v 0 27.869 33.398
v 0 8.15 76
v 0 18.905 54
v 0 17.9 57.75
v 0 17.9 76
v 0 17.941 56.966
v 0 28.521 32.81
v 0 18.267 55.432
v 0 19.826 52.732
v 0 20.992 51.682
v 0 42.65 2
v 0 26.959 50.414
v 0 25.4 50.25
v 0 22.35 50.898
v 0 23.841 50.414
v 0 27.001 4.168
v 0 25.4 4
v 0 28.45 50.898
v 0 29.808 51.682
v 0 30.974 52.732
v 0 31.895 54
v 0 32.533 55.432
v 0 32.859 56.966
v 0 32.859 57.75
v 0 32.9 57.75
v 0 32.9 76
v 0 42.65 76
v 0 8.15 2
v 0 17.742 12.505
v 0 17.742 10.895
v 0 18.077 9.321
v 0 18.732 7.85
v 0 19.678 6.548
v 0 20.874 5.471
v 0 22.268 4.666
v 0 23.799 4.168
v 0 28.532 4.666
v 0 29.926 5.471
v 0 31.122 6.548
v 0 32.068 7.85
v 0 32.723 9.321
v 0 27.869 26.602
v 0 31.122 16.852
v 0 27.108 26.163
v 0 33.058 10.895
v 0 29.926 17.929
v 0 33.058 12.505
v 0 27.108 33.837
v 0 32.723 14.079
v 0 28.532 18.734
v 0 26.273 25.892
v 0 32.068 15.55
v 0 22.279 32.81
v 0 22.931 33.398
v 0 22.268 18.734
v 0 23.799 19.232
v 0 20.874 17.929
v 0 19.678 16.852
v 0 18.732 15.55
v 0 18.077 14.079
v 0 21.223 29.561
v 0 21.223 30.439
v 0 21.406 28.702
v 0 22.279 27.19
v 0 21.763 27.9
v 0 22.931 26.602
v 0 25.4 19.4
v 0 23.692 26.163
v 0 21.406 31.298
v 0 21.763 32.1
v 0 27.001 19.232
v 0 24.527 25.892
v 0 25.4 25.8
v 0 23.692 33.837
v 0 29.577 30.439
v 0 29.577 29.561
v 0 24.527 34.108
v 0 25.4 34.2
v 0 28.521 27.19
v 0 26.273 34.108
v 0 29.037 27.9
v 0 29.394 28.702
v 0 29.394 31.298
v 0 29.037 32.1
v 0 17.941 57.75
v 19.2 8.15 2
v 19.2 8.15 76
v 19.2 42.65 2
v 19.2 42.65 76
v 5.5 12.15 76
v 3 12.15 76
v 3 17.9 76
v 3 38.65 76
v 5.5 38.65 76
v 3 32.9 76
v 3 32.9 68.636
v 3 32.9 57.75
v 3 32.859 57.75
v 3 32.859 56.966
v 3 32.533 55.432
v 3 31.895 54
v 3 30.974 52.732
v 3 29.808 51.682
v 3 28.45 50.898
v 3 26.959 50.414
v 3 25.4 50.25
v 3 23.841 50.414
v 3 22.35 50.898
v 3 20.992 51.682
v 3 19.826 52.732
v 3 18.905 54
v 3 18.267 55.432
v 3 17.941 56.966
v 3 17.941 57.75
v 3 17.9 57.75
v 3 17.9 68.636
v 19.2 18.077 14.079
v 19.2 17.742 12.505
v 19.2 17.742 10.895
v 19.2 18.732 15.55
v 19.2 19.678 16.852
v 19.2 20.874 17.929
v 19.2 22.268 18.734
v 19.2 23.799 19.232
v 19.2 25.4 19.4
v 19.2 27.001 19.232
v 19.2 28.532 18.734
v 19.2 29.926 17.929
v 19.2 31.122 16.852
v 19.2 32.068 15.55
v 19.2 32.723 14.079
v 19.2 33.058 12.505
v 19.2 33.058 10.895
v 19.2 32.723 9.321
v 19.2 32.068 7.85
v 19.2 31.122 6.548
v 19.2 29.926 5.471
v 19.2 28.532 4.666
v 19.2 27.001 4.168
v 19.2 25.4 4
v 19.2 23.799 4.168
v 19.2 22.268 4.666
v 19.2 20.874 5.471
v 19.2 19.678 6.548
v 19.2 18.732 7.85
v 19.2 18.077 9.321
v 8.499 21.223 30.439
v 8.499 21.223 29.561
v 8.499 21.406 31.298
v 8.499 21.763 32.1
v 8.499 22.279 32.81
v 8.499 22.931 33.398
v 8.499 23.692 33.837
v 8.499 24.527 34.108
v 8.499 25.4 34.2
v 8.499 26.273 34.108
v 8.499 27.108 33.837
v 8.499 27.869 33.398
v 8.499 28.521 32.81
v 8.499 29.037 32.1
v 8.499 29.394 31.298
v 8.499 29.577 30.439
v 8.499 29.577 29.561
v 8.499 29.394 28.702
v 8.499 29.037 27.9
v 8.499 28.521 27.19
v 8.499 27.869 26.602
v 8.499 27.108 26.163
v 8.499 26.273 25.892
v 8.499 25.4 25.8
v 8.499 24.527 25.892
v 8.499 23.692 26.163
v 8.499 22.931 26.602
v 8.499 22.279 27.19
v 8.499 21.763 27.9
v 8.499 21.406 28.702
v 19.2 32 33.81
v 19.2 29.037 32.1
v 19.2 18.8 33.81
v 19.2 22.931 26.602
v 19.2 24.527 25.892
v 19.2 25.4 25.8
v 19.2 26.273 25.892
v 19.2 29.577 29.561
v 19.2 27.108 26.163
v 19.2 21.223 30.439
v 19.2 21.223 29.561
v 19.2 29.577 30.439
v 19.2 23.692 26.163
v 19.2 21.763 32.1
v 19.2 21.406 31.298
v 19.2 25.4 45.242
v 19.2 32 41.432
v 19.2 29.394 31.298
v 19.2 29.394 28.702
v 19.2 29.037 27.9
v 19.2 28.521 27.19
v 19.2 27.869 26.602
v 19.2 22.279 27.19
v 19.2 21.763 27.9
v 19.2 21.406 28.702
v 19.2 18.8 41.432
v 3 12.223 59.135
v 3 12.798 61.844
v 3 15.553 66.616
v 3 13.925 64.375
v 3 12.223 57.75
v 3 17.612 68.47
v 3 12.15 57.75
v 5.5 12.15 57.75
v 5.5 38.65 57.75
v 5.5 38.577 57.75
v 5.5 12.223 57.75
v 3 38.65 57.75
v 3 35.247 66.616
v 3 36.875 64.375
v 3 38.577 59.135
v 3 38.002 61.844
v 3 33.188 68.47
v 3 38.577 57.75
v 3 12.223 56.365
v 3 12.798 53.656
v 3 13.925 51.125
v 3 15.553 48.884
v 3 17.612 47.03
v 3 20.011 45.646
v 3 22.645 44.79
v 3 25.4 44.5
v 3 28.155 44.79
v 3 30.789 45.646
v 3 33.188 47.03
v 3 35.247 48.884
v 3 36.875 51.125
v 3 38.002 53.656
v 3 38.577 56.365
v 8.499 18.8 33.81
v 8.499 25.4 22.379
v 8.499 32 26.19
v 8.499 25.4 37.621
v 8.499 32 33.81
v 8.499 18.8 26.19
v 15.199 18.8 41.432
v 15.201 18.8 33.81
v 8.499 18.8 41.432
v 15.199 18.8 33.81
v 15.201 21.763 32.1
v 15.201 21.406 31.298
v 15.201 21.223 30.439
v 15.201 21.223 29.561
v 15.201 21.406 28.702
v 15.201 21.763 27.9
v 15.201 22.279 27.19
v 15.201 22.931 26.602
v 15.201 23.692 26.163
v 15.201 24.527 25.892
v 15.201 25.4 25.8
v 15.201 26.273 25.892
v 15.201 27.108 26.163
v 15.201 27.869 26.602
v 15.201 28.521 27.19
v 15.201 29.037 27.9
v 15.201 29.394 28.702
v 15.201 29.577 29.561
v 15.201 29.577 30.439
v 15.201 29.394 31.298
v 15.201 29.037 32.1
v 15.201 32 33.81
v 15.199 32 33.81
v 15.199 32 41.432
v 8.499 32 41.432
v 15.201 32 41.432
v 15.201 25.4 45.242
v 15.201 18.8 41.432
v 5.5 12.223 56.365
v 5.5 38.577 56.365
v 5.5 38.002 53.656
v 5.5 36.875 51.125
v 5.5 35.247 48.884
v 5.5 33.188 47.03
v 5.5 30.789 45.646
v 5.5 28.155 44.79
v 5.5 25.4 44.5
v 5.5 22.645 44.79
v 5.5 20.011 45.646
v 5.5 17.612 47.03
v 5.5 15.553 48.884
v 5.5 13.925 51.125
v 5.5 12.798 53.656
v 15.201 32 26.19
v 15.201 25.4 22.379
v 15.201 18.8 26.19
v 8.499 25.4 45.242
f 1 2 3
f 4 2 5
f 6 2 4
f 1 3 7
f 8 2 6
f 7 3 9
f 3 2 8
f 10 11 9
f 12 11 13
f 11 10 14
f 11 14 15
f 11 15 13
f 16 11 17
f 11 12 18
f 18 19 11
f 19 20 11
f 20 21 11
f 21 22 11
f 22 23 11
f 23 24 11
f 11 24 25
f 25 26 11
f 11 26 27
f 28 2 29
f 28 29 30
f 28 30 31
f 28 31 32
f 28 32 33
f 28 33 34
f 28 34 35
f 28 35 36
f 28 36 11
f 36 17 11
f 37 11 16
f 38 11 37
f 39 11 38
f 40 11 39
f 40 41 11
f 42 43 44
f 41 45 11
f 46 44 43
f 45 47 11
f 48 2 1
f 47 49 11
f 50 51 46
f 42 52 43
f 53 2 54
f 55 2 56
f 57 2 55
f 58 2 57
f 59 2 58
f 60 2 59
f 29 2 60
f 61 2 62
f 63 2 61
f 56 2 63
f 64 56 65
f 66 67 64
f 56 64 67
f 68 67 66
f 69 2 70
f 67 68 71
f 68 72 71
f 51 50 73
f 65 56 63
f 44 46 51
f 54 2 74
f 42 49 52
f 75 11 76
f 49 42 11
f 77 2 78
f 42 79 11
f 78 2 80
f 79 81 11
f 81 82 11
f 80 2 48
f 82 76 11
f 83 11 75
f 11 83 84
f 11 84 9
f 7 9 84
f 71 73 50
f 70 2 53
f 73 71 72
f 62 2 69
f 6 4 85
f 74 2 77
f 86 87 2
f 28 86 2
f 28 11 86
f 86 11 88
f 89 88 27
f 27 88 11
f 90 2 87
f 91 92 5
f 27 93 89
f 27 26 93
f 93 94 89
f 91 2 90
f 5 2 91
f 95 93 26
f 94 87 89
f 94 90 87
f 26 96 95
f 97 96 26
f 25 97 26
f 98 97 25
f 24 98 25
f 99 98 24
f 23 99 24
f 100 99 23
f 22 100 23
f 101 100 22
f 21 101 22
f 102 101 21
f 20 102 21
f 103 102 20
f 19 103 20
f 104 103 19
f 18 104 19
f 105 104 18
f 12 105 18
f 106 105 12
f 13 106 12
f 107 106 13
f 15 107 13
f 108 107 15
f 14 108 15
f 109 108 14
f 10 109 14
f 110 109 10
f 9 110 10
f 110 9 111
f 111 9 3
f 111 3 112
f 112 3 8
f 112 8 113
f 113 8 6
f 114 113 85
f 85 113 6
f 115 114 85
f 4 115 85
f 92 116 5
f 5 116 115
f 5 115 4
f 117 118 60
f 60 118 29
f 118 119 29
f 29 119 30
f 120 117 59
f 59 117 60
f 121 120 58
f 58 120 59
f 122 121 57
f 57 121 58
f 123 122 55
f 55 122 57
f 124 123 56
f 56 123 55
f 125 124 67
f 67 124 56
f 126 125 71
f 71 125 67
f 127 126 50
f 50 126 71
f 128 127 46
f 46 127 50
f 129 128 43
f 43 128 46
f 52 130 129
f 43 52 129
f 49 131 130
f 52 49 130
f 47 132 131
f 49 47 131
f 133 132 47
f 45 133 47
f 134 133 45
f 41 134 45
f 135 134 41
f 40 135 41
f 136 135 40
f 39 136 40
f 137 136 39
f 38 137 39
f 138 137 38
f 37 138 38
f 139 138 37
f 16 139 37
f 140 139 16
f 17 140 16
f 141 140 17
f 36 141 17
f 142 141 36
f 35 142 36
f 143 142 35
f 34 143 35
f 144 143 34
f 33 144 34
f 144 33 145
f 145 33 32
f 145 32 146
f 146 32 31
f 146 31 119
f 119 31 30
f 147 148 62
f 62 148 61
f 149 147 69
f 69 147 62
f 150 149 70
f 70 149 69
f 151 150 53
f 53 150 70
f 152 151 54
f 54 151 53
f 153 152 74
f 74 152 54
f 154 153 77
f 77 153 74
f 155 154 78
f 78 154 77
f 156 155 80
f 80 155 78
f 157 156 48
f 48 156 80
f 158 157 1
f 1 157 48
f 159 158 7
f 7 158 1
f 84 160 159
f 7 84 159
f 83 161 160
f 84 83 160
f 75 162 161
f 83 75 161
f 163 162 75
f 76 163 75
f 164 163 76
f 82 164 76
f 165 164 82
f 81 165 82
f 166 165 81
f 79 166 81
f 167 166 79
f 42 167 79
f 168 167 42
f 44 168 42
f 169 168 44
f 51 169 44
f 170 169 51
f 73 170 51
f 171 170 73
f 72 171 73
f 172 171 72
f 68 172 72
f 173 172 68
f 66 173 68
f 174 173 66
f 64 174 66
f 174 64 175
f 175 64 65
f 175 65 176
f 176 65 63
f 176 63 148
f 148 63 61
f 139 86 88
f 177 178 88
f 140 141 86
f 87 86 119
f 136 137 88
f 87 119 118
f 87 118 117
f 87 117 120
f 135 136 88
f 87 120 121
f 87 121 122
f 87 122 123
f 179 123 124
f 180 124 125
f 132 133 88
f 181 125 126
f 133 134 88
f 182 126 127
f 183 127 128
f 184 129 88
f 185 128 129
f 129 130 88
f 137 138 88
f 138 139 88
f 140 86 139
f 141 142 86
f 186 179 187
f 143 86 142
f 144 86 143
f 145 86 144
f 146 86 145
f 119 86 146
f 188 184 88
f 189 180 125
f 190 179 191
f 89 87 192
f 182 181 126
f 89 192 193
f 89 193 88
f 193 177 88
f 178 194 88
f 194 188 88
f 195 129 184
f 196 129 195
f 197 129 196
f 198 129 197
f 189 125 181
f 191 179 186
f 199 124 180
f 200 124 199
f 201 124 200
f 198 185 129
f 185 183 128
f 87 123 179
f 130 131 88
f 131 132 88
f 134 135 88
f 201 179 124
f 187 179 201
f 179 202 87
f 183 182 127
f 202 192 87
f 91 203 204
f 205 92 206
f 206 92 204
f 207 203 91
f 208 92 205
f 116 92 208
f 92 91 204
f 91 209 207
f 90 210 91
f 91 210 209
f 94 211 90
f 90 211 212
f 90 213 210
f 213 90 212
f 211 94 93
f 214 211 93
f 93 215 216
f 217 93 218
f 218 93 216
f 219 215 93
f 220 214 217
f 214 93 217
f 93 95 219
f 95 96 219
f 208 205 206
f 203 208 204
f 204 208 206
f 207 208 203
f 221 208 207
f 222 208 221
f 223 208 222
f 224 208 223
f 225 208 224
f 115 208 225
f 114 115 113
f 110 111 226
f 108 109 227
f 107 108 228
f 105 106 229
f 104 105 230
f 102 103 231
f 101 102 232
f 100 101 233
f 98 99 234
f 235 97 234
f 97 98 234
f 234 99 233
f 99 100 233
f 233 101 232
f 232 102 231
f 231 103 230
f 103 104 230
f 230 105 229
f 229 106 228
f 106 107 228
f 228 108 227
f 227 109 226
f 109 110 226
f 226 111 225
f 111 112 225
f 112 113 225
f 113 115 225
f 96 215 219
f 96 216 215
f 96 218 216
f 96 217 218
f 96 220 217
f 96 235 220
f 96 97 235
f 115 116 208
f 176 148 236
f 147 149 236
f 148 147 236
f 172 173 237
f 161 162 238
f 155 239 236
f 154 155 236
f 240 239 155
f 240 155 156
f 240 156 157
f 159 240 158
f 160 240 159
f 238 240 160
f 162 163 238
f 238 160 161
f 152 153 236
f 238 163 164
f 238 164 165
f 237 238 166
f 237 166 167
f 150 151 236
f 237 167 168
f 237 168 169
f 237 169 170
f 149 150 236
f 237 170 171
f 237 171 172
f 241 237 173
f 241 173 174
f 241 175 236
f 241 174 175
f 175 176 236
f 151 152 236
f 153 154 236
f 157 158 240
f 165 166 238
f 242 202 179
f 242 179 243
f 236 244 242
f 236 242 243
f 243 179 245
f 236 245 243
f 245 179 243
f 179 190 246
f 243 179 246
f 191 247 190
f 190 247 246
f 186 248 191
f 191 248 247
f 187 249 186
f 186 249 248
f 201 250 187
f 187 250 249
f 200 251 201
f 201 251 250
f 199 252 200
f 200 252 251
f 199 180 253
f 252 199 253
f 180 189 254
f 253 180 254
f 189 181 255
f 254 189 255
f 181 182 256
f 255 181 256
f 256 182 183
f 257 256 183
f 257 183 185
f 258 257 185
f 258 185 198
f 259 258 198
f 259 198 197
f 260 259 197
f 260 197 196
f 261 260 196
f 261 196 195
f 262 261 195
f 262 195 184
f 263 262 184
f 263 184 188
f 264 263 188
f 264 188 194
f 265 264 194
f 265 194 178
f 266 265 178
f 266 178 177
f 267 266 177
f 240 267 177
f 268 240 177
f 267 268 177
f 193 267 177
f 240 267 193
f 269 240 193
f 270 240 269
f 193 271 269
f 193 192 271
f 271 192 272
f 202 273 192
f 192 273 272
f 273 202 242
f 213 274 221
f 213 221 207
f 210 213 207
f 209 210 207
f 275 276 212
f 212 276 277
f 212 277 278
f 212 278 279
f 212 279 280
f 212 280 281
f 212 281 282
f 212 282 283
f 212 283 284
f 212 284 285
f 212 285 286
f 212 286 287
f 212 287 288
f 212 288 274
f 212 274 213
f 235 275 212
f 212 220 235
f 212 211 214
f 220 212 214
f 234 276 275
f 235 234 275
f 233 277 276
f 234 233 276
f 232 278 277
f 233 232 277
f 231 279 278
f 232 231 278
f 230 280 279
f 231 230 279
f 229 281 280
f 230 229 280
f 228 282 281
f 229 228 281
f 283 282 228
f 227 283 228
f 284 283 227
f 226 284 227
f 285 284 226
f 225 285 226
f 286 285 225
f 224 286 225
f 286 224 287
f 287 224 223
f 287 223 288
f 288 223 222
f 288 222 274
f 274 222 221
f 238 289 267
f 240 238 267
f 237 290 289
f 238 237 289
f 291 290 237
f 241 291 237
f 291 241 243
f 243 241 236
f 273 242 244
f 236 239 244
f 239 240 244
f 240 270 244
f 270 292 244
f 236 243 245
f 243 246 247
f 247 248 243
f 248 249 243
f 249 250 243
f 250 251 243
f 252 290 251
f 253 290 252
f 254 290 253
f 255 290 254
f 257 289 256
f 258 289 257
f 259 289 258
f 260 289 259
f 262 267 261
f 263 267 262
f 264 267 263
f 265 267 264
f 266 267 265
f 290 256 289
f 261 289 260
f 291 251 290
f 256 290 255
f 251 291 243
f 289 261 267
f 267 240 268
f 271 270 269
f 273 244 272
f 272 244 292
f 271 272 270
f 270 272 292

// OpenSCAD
// file: syringePumpConstants.scad
/* === Project-universal Constants === */

//Not all of these variables are used in this specific model,
//but the same variable set is used across all models in this project.

$fs = 0.1;

inch = 25.4; //for mm conversion

//width of base
baseSizeY = 2*inch;
centerY = baseSizeY / 2; //both axes go right down the middle of the base

//stepper motor
stepperZSize = 42;
stepperYSize = 42;

//608 bearing 
bearing608Height = 8.5;
bearing608Diameter = 22.5;

//height of holder for 80/20 screws
mountPlateHeight = 5;

//axis heights
threadedAxisHeight = stepperZSize/2 + mountPlateHeight + 4;
smoothAxisHeight = (threadedAxisHeight-6.6) / 2;
smoothRodRadius = 4.2;

//syringe properties
barrelDiameter = 25;

barrelSlotThickness = 3;
barrelSlotHeight = 28;

syringeCenterHeight = threadedAxisHeight + bearing608Diameter/2 + 4 + barrelDiameter/2;

//fixes render oddities
floatCorrection = 0.001; 
floatCorrection2 = 2*floatCorrection; 

//8020 mounting plate
screwPlateSize = 25;	
screwRadius = 3.5;
// main file
include <syringePumpConstants.scad>

/* === Model-specific Constants === */

//add some clearance, we don't want this against the 8020 rails
spaceAboveFloor = 2;

//plunger
plungerDiameter = 26.5;
plungerThickness = 2.5;
plungerInnerDiameter = 15;
plungerClipThickness = 3;
plungerWellDepth = plungerThickness + plungerClipThickness;

//trap nut
nutAcross = 13.2;
nutDepth = 6.5;
nutWellDepth = nutDepth + 0.2;
nutWallThicknessFront = plungerWellDepth+3;
nutWallThicknessBack = 4;

nutSlotSizeX = nutWallThicknessFront;
nutSlotSizeY = nutAcross;
nutSlotSizeZ = nutAcross/2;

//linear bearing 
LM8UU_dia = 15.4;
LM8UU_length = 24;

//cube containing nut, linear bearing, and plunger
mountXSize = nutWellDepth + nutWallThicknessFront + nutWallThicknessBack;
mountZSize = syringeCenterHeight + plungerDiameter/2 + 3;

/* === Model === */

//main cube, holds the two axes
difference(){
	translate([0,0,spaceAboveFloor]){
		cube(size=[mountXSize,baseSizeY,mountZSize]);
	}

	//nut
	translate([-floatCorrection+nutWallThicknessFront,centerY,threadedAxisHeight]){
		rotate(a=[0,90,0]){
			nutWell();
		}
		//nut insertion slot
		translate([0,0,nutAcross/sqrt(3)]){
			rotate(a=[0,90,0]){
				nutWell();
			}
		}
		translate([nutWellDepth,0,nutAcross/sqrt(3)]){
			rotate(a=[0,90,0]){
				nutWell();
			}
		}
	}

	
	//bore hole for threaded rod
	translate([-floatCorrection,centerY,threadedAxisHeight]){
		rotate(a=[0,90,0]){
			cylinder(h=mountXSize+floatCorrection2, r=smoothRodRadius);
		}
	}

	//hole for LM8UU
	translate([-floatCorrection,centerY,smoothAxisHeight]){
		rotate(a=[0,90,0]){
			bearingLM8UU();
		}
	}

	//U-shaped hole for syringe plunger to go in
	translate([plungerClipThickness,centerY,syringeCenterHeight]){
		rotate(a=[0,90,0]){
			cylinder(h=plungerThickness, r=plungerDiameter/2);
		}	
		translate([0,-plungerDiameter/2,0]){
			cube(size=[plungerThickness,plungerDiameter,mountZSize]);
		}
	}	
	translate([-floatCorrection,centerY,syringeCenterHeight]){
		rotate(a=[0,90,0]){
			cylinder(h=plungerClipThickness+floatCorrection2, r=plungerInnerDiameter/2);
		}	
		translate([0,-plungerInnerDiameter/2,0]){
			cube(size=[plungerClipThickness+floatCorrection2,plungerInnerDiameter,mountZSize]);
		}
	}	
	
	
	//remove excess volume from sides
	translate([-floatCorrection,centerY+plungerDiameter/2 + 4,0]){
		cube(size=[mountXSize + floatCorrection2, baseSizeY, mountZSize+spaceAboveFloor]);
	}	
	cube(size=[mountXSize + floatCorrection2, centerY-plungerDiameter/2-4, mountZSize+spaceAboveFloor]);
}




module nutWell(){
	//compose the outline of the 6-sided nut using 3 cubes. Yay geometry.
	nutEdgeLength = nutAcross / (sqrt(3));
	
	translate([-nutEdgeLength/2, -nutAcross/2, 0]){
		cube(size=[nutEdgeLength,nutAcross,nutWellDepth+floatCorrection2]);
	}

		rotate(a=[0,0,60]){
			translate([-nutEdgeLength/2, -nutAcross/2, 0]){
				cube(size=[nutEdgeLength,nutAcross,nutWellDepth+floatCorrection2]);
			}
		}
	
		rotate(a=[0,0,-60]){
			translate([-nutEdgeLength/2, -nutAcross/2, 0]){
				cube(size=[nutEdgeLength,nutAcross,nutWellDepth+floatCorrection2]);
			}
		}
}

module bearingLM8UU(){
	cylinder(h=LM8UU_length, r=LM8UU_dia/2);
}
